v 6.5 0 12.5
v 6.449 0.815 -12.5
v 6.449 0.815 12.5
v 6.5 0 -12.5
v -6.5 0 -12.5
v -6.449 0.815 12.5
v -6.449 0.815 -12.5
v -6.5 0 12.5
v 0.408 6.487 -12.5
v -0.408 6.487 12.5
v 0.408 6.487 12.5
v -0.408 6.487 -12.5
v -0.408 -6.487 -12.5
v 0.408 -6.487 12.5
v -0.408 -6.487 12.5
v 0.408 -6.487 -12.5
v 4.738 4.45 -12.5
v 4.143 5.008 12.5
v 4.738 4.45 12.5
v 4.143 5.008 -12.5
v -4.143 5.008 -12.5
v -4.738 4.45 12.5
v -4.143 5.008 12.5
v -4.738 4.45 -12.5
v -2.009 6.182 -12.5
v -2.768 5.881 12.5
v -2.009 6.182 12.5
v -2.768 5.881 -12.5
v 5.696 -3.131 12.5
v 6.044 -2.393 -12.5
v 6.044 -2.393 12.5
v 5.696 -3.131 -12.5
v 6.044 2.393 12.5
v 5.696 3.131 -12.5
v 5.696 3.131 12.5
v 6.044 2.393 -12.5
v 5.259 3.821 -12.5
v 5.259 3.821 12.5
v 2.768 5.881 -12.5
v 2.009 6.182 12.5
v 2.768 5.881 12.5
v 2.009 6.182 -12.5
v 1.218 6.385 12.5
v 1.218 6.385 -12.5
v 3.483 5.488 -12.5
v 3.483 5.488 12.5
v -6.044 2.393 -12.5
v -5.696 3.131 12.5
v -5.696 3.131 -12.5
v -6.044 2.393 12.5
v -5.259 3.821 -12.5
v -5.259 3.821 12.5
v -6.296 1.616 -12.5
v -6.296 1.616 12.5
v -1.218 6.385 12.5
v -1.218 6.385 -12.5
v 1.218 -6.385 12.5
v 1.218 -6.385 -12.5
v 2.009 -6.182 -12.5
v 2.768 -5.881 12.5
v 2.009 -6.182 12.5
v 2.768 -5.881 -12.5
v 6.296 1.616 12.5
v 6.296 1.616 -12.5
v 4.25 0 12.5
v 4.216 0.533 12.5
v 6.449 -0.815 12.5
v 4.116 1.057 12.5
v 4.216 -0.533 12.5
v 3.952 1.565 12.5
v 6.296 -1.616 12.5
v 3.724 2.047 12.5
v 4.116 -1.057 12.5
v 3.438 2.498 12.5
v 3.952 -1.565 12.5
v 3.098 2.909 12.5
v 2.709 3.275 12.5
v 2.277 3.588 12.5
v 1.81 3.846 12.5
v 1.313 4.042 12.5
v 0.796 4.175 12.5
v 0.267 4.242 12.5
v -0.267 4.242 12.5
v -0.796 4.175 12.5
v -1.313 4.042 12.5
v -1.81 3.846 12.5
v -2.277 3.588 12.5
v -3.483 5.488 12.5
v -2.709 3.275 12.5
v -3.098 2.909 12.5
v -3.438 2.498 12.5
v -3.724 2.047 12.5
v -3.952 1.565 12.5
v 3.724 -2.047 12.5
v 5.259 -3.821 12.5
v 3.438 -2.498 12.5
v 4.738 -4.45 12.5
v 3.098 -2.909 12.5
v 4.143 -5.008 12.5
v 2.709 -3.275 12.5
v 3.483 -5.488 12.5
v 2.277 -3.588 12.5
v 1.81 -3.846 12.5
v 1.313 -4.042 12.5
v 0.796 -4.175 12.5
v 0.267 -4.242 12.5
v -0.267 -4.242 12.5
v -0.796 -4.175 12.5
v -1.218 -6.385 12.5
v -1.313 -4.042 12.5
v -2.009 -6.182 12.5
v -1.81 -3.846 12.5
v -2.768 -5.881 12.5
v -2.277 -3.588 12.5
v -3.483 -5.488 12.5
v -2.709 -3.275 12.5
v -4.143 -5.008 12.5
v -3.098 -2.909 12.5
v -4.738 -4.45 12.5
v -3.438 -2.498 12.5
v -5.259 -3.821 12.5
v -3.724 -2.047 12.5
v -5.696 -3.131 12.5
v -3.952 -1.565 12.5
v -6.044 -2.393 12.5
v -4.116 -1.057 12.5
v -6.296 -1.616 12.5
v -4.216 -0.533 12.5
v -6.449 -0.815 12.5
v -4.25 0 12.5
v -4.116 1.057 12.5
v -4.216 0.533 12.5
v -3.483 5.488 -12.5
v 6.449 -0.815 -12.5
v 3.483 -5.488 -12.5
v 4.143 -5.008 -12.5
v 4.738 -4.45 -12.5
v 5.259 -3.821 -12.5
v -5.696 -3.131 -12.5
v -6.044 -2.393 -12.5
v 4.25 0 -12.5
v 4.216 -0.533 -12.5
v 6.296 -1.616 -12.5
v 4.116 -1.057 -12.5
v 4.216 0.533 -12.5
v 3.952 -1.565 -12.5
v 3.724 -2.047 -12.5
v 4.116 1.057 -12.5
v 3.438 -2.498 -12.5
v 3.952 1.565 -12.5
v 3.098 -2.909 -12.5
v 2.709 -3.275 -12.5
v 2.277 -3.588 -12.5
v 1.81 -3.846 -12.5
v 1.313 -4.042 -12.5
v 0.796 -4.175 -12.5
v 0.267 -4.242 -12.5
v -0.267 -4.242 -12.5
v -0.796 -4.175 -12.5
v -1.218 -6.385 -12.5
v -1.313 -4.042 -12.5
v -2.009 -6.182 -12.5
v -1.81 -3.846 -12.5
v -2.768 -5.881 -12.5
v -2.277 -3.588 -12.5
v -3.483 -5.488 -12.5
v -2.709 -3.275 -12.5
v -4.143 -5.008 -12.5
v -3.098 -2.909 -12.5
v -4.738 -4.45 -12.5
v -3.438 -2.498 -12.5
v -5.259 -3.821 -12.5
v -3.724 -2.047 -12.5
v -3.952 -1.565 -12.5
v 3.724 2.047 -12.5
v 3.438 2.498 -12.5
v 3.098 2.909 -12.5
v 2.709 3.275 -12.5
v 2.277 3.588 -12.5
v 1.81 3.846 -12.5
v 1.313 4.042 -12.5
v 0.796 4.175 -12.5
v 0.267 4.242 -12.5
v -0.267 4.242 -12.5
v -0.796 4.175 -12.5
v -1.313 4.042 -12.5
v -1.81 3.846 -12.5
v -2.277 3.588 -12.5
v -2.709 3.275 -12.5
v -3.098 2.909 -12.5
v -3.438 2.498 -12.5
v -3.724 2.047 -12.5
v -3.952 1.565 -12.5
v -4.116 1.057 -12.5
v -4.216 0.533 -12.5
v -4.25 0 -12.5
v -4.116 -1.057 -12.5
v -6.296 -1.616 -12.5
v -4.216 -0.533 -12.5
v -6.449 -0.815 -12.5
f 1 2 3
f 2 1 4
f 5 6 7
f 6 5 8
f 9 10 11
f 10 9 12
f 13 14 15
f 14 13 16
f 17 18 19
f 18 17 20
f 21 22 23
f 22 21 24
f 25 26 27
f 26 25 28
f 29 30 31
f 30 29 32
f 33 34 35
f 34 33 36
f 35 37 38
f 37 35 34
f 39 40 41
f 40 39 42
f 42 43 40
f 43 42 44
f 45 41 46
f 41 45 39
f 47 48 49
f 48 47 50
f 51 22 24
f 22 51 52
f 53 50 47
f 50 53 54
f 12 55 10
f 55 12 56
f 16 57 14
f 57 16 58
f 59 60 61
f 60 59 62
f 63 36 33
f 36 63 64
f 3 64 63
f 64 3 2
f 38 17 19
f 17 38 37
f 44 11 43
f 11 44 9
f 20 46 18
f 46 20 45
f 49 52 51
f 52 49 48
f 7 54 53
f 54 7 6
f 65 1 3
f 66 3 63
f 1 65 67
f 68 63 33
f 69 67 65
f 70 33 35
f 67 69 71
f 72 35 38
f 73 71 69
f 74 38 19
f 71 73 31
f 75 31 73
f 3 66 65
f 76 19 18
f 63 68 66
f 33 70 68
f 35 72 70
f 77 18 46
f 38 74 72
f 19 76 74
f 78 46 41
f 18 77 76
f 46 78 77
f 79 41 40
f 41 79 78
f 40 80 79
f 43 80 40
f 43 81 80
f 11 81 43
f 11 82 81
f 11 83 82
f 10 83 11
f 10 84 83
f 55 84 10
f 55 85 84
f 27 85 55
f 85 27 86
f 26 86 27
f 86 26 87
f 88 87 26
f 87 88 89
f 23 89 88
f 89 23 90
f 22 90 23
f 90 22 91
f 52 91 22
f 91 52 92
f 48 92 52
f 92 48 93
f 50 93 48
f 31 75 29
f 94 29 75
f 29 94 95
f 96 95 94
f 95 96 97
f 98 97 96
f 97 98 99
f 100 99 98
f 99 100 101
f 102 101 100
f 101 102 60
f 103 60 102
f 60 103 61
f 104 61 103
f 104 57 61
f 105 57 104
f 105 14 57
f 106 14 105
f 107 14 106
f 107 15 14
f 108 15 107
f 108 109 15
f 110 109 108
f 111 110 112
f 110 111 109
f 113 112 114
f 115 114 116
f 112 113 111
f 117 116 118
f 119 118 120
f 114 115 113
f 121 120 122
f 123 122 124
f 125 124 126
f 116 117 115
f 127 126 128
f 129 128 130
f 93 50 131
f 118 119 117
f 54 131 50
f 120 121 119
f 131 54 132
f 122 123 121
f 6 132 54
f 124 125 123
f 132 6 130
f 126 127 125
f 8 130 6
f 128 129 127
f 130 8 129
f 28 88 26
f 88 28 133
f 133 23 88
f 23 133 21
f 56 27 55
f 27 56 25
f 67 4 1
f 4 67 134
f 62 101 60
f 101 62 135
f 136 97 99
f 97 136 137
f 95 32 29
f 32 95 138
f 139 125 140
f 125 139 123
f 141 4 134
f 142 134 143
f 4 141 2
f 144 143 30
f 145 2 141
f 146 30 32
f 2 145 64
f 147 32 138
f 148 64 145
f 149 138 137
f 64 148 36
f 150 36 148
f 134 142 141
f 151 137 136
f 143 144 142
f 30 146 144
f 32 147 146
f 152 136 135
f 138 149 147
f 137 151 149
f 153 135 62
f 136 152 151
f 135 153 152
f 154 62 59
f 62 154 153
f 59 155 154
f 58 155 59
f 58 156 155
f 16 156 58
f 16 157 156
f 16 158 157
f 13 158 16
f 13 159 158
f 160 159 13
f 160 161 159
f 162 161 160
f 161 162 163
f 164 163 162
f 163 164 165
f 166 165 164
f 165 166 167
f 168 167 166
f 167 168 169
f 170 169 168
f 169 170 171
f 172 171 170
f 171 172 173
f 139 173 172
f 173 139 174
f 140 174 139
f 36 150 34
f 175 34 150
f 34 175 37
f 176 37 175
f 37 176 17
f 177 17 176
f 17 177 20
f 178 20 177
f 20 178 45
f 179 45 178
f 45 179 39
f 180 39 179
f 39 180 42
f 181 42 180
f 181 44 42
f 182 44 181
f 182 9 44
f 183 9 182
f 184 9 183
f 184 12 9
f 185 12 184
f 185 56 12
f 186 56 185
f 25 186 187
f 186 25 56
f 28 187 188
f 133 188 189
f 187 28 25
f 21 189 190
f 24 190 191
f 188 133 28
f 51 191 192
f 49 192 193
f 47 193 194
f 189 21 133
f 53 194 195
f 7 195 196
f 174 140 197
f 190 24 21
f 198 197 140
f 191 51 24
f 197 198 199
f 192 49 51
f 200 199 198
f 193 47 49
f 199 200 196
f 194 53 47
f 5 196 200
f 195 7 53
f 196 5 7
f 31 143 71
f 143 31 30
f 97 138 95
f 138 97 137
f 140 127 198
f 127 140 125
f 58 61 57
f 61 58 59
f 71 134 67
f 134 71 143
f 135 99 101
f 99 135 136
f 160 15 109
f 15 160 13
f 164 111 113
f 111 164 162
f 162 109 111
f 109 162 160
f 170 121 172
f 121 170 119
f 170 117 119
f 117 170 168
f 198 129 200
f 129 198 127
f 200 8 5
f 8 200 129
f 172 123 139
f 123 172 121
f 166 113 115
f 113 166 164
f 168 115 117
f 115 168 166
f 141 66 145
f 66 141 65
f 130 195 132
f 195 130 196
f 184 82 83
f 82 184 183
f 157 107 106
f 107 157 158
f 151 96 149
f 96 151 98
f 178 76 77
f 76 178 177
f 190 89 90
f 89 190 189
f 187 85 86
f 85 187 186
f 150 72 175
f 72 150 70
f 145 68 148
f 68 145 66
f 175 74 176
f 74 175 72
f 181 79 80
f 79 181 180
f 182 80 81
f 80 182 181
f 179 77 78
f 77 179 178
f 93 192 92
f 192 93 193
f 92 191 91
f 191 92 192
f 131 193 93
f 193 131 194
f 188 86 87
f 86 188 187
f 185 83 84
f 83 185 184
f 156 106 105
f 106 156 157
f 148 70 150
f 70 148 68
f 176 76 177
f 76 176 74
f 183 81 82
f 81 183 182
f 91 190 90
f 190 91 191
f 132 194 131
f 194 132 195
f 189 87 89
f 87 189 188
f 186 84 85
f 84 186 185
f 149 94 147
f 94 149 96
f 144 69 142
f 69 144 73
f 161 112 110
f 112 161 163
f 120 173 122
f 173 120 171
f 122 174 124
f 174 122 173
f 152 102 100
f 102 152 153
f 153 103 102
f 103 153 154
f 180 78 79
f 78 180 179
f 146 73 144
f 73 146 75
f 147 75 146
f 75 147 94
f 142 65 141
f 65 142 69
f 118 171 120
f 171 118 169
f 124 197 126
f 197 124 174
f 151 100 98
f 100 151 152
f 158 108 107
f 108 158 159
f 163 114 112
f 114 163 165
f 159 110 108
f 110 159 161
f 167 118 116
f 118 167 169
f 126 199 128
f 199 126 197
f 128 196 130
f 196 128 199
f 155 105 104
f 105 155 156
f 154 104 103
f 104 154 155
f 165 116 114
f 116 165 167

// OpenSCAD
$fn = 50;


difference() {
	union() {
		translate(v = [0, 0, -12.5000000000]) {
			cylinder(h = 25, r = 6.5000000000);
		}
	}
	union() {
		translate(v = [0, 0, -100.0000000000]) {
			cylinder(h = 200, r = 4.2500000000);
		}
	}
}
